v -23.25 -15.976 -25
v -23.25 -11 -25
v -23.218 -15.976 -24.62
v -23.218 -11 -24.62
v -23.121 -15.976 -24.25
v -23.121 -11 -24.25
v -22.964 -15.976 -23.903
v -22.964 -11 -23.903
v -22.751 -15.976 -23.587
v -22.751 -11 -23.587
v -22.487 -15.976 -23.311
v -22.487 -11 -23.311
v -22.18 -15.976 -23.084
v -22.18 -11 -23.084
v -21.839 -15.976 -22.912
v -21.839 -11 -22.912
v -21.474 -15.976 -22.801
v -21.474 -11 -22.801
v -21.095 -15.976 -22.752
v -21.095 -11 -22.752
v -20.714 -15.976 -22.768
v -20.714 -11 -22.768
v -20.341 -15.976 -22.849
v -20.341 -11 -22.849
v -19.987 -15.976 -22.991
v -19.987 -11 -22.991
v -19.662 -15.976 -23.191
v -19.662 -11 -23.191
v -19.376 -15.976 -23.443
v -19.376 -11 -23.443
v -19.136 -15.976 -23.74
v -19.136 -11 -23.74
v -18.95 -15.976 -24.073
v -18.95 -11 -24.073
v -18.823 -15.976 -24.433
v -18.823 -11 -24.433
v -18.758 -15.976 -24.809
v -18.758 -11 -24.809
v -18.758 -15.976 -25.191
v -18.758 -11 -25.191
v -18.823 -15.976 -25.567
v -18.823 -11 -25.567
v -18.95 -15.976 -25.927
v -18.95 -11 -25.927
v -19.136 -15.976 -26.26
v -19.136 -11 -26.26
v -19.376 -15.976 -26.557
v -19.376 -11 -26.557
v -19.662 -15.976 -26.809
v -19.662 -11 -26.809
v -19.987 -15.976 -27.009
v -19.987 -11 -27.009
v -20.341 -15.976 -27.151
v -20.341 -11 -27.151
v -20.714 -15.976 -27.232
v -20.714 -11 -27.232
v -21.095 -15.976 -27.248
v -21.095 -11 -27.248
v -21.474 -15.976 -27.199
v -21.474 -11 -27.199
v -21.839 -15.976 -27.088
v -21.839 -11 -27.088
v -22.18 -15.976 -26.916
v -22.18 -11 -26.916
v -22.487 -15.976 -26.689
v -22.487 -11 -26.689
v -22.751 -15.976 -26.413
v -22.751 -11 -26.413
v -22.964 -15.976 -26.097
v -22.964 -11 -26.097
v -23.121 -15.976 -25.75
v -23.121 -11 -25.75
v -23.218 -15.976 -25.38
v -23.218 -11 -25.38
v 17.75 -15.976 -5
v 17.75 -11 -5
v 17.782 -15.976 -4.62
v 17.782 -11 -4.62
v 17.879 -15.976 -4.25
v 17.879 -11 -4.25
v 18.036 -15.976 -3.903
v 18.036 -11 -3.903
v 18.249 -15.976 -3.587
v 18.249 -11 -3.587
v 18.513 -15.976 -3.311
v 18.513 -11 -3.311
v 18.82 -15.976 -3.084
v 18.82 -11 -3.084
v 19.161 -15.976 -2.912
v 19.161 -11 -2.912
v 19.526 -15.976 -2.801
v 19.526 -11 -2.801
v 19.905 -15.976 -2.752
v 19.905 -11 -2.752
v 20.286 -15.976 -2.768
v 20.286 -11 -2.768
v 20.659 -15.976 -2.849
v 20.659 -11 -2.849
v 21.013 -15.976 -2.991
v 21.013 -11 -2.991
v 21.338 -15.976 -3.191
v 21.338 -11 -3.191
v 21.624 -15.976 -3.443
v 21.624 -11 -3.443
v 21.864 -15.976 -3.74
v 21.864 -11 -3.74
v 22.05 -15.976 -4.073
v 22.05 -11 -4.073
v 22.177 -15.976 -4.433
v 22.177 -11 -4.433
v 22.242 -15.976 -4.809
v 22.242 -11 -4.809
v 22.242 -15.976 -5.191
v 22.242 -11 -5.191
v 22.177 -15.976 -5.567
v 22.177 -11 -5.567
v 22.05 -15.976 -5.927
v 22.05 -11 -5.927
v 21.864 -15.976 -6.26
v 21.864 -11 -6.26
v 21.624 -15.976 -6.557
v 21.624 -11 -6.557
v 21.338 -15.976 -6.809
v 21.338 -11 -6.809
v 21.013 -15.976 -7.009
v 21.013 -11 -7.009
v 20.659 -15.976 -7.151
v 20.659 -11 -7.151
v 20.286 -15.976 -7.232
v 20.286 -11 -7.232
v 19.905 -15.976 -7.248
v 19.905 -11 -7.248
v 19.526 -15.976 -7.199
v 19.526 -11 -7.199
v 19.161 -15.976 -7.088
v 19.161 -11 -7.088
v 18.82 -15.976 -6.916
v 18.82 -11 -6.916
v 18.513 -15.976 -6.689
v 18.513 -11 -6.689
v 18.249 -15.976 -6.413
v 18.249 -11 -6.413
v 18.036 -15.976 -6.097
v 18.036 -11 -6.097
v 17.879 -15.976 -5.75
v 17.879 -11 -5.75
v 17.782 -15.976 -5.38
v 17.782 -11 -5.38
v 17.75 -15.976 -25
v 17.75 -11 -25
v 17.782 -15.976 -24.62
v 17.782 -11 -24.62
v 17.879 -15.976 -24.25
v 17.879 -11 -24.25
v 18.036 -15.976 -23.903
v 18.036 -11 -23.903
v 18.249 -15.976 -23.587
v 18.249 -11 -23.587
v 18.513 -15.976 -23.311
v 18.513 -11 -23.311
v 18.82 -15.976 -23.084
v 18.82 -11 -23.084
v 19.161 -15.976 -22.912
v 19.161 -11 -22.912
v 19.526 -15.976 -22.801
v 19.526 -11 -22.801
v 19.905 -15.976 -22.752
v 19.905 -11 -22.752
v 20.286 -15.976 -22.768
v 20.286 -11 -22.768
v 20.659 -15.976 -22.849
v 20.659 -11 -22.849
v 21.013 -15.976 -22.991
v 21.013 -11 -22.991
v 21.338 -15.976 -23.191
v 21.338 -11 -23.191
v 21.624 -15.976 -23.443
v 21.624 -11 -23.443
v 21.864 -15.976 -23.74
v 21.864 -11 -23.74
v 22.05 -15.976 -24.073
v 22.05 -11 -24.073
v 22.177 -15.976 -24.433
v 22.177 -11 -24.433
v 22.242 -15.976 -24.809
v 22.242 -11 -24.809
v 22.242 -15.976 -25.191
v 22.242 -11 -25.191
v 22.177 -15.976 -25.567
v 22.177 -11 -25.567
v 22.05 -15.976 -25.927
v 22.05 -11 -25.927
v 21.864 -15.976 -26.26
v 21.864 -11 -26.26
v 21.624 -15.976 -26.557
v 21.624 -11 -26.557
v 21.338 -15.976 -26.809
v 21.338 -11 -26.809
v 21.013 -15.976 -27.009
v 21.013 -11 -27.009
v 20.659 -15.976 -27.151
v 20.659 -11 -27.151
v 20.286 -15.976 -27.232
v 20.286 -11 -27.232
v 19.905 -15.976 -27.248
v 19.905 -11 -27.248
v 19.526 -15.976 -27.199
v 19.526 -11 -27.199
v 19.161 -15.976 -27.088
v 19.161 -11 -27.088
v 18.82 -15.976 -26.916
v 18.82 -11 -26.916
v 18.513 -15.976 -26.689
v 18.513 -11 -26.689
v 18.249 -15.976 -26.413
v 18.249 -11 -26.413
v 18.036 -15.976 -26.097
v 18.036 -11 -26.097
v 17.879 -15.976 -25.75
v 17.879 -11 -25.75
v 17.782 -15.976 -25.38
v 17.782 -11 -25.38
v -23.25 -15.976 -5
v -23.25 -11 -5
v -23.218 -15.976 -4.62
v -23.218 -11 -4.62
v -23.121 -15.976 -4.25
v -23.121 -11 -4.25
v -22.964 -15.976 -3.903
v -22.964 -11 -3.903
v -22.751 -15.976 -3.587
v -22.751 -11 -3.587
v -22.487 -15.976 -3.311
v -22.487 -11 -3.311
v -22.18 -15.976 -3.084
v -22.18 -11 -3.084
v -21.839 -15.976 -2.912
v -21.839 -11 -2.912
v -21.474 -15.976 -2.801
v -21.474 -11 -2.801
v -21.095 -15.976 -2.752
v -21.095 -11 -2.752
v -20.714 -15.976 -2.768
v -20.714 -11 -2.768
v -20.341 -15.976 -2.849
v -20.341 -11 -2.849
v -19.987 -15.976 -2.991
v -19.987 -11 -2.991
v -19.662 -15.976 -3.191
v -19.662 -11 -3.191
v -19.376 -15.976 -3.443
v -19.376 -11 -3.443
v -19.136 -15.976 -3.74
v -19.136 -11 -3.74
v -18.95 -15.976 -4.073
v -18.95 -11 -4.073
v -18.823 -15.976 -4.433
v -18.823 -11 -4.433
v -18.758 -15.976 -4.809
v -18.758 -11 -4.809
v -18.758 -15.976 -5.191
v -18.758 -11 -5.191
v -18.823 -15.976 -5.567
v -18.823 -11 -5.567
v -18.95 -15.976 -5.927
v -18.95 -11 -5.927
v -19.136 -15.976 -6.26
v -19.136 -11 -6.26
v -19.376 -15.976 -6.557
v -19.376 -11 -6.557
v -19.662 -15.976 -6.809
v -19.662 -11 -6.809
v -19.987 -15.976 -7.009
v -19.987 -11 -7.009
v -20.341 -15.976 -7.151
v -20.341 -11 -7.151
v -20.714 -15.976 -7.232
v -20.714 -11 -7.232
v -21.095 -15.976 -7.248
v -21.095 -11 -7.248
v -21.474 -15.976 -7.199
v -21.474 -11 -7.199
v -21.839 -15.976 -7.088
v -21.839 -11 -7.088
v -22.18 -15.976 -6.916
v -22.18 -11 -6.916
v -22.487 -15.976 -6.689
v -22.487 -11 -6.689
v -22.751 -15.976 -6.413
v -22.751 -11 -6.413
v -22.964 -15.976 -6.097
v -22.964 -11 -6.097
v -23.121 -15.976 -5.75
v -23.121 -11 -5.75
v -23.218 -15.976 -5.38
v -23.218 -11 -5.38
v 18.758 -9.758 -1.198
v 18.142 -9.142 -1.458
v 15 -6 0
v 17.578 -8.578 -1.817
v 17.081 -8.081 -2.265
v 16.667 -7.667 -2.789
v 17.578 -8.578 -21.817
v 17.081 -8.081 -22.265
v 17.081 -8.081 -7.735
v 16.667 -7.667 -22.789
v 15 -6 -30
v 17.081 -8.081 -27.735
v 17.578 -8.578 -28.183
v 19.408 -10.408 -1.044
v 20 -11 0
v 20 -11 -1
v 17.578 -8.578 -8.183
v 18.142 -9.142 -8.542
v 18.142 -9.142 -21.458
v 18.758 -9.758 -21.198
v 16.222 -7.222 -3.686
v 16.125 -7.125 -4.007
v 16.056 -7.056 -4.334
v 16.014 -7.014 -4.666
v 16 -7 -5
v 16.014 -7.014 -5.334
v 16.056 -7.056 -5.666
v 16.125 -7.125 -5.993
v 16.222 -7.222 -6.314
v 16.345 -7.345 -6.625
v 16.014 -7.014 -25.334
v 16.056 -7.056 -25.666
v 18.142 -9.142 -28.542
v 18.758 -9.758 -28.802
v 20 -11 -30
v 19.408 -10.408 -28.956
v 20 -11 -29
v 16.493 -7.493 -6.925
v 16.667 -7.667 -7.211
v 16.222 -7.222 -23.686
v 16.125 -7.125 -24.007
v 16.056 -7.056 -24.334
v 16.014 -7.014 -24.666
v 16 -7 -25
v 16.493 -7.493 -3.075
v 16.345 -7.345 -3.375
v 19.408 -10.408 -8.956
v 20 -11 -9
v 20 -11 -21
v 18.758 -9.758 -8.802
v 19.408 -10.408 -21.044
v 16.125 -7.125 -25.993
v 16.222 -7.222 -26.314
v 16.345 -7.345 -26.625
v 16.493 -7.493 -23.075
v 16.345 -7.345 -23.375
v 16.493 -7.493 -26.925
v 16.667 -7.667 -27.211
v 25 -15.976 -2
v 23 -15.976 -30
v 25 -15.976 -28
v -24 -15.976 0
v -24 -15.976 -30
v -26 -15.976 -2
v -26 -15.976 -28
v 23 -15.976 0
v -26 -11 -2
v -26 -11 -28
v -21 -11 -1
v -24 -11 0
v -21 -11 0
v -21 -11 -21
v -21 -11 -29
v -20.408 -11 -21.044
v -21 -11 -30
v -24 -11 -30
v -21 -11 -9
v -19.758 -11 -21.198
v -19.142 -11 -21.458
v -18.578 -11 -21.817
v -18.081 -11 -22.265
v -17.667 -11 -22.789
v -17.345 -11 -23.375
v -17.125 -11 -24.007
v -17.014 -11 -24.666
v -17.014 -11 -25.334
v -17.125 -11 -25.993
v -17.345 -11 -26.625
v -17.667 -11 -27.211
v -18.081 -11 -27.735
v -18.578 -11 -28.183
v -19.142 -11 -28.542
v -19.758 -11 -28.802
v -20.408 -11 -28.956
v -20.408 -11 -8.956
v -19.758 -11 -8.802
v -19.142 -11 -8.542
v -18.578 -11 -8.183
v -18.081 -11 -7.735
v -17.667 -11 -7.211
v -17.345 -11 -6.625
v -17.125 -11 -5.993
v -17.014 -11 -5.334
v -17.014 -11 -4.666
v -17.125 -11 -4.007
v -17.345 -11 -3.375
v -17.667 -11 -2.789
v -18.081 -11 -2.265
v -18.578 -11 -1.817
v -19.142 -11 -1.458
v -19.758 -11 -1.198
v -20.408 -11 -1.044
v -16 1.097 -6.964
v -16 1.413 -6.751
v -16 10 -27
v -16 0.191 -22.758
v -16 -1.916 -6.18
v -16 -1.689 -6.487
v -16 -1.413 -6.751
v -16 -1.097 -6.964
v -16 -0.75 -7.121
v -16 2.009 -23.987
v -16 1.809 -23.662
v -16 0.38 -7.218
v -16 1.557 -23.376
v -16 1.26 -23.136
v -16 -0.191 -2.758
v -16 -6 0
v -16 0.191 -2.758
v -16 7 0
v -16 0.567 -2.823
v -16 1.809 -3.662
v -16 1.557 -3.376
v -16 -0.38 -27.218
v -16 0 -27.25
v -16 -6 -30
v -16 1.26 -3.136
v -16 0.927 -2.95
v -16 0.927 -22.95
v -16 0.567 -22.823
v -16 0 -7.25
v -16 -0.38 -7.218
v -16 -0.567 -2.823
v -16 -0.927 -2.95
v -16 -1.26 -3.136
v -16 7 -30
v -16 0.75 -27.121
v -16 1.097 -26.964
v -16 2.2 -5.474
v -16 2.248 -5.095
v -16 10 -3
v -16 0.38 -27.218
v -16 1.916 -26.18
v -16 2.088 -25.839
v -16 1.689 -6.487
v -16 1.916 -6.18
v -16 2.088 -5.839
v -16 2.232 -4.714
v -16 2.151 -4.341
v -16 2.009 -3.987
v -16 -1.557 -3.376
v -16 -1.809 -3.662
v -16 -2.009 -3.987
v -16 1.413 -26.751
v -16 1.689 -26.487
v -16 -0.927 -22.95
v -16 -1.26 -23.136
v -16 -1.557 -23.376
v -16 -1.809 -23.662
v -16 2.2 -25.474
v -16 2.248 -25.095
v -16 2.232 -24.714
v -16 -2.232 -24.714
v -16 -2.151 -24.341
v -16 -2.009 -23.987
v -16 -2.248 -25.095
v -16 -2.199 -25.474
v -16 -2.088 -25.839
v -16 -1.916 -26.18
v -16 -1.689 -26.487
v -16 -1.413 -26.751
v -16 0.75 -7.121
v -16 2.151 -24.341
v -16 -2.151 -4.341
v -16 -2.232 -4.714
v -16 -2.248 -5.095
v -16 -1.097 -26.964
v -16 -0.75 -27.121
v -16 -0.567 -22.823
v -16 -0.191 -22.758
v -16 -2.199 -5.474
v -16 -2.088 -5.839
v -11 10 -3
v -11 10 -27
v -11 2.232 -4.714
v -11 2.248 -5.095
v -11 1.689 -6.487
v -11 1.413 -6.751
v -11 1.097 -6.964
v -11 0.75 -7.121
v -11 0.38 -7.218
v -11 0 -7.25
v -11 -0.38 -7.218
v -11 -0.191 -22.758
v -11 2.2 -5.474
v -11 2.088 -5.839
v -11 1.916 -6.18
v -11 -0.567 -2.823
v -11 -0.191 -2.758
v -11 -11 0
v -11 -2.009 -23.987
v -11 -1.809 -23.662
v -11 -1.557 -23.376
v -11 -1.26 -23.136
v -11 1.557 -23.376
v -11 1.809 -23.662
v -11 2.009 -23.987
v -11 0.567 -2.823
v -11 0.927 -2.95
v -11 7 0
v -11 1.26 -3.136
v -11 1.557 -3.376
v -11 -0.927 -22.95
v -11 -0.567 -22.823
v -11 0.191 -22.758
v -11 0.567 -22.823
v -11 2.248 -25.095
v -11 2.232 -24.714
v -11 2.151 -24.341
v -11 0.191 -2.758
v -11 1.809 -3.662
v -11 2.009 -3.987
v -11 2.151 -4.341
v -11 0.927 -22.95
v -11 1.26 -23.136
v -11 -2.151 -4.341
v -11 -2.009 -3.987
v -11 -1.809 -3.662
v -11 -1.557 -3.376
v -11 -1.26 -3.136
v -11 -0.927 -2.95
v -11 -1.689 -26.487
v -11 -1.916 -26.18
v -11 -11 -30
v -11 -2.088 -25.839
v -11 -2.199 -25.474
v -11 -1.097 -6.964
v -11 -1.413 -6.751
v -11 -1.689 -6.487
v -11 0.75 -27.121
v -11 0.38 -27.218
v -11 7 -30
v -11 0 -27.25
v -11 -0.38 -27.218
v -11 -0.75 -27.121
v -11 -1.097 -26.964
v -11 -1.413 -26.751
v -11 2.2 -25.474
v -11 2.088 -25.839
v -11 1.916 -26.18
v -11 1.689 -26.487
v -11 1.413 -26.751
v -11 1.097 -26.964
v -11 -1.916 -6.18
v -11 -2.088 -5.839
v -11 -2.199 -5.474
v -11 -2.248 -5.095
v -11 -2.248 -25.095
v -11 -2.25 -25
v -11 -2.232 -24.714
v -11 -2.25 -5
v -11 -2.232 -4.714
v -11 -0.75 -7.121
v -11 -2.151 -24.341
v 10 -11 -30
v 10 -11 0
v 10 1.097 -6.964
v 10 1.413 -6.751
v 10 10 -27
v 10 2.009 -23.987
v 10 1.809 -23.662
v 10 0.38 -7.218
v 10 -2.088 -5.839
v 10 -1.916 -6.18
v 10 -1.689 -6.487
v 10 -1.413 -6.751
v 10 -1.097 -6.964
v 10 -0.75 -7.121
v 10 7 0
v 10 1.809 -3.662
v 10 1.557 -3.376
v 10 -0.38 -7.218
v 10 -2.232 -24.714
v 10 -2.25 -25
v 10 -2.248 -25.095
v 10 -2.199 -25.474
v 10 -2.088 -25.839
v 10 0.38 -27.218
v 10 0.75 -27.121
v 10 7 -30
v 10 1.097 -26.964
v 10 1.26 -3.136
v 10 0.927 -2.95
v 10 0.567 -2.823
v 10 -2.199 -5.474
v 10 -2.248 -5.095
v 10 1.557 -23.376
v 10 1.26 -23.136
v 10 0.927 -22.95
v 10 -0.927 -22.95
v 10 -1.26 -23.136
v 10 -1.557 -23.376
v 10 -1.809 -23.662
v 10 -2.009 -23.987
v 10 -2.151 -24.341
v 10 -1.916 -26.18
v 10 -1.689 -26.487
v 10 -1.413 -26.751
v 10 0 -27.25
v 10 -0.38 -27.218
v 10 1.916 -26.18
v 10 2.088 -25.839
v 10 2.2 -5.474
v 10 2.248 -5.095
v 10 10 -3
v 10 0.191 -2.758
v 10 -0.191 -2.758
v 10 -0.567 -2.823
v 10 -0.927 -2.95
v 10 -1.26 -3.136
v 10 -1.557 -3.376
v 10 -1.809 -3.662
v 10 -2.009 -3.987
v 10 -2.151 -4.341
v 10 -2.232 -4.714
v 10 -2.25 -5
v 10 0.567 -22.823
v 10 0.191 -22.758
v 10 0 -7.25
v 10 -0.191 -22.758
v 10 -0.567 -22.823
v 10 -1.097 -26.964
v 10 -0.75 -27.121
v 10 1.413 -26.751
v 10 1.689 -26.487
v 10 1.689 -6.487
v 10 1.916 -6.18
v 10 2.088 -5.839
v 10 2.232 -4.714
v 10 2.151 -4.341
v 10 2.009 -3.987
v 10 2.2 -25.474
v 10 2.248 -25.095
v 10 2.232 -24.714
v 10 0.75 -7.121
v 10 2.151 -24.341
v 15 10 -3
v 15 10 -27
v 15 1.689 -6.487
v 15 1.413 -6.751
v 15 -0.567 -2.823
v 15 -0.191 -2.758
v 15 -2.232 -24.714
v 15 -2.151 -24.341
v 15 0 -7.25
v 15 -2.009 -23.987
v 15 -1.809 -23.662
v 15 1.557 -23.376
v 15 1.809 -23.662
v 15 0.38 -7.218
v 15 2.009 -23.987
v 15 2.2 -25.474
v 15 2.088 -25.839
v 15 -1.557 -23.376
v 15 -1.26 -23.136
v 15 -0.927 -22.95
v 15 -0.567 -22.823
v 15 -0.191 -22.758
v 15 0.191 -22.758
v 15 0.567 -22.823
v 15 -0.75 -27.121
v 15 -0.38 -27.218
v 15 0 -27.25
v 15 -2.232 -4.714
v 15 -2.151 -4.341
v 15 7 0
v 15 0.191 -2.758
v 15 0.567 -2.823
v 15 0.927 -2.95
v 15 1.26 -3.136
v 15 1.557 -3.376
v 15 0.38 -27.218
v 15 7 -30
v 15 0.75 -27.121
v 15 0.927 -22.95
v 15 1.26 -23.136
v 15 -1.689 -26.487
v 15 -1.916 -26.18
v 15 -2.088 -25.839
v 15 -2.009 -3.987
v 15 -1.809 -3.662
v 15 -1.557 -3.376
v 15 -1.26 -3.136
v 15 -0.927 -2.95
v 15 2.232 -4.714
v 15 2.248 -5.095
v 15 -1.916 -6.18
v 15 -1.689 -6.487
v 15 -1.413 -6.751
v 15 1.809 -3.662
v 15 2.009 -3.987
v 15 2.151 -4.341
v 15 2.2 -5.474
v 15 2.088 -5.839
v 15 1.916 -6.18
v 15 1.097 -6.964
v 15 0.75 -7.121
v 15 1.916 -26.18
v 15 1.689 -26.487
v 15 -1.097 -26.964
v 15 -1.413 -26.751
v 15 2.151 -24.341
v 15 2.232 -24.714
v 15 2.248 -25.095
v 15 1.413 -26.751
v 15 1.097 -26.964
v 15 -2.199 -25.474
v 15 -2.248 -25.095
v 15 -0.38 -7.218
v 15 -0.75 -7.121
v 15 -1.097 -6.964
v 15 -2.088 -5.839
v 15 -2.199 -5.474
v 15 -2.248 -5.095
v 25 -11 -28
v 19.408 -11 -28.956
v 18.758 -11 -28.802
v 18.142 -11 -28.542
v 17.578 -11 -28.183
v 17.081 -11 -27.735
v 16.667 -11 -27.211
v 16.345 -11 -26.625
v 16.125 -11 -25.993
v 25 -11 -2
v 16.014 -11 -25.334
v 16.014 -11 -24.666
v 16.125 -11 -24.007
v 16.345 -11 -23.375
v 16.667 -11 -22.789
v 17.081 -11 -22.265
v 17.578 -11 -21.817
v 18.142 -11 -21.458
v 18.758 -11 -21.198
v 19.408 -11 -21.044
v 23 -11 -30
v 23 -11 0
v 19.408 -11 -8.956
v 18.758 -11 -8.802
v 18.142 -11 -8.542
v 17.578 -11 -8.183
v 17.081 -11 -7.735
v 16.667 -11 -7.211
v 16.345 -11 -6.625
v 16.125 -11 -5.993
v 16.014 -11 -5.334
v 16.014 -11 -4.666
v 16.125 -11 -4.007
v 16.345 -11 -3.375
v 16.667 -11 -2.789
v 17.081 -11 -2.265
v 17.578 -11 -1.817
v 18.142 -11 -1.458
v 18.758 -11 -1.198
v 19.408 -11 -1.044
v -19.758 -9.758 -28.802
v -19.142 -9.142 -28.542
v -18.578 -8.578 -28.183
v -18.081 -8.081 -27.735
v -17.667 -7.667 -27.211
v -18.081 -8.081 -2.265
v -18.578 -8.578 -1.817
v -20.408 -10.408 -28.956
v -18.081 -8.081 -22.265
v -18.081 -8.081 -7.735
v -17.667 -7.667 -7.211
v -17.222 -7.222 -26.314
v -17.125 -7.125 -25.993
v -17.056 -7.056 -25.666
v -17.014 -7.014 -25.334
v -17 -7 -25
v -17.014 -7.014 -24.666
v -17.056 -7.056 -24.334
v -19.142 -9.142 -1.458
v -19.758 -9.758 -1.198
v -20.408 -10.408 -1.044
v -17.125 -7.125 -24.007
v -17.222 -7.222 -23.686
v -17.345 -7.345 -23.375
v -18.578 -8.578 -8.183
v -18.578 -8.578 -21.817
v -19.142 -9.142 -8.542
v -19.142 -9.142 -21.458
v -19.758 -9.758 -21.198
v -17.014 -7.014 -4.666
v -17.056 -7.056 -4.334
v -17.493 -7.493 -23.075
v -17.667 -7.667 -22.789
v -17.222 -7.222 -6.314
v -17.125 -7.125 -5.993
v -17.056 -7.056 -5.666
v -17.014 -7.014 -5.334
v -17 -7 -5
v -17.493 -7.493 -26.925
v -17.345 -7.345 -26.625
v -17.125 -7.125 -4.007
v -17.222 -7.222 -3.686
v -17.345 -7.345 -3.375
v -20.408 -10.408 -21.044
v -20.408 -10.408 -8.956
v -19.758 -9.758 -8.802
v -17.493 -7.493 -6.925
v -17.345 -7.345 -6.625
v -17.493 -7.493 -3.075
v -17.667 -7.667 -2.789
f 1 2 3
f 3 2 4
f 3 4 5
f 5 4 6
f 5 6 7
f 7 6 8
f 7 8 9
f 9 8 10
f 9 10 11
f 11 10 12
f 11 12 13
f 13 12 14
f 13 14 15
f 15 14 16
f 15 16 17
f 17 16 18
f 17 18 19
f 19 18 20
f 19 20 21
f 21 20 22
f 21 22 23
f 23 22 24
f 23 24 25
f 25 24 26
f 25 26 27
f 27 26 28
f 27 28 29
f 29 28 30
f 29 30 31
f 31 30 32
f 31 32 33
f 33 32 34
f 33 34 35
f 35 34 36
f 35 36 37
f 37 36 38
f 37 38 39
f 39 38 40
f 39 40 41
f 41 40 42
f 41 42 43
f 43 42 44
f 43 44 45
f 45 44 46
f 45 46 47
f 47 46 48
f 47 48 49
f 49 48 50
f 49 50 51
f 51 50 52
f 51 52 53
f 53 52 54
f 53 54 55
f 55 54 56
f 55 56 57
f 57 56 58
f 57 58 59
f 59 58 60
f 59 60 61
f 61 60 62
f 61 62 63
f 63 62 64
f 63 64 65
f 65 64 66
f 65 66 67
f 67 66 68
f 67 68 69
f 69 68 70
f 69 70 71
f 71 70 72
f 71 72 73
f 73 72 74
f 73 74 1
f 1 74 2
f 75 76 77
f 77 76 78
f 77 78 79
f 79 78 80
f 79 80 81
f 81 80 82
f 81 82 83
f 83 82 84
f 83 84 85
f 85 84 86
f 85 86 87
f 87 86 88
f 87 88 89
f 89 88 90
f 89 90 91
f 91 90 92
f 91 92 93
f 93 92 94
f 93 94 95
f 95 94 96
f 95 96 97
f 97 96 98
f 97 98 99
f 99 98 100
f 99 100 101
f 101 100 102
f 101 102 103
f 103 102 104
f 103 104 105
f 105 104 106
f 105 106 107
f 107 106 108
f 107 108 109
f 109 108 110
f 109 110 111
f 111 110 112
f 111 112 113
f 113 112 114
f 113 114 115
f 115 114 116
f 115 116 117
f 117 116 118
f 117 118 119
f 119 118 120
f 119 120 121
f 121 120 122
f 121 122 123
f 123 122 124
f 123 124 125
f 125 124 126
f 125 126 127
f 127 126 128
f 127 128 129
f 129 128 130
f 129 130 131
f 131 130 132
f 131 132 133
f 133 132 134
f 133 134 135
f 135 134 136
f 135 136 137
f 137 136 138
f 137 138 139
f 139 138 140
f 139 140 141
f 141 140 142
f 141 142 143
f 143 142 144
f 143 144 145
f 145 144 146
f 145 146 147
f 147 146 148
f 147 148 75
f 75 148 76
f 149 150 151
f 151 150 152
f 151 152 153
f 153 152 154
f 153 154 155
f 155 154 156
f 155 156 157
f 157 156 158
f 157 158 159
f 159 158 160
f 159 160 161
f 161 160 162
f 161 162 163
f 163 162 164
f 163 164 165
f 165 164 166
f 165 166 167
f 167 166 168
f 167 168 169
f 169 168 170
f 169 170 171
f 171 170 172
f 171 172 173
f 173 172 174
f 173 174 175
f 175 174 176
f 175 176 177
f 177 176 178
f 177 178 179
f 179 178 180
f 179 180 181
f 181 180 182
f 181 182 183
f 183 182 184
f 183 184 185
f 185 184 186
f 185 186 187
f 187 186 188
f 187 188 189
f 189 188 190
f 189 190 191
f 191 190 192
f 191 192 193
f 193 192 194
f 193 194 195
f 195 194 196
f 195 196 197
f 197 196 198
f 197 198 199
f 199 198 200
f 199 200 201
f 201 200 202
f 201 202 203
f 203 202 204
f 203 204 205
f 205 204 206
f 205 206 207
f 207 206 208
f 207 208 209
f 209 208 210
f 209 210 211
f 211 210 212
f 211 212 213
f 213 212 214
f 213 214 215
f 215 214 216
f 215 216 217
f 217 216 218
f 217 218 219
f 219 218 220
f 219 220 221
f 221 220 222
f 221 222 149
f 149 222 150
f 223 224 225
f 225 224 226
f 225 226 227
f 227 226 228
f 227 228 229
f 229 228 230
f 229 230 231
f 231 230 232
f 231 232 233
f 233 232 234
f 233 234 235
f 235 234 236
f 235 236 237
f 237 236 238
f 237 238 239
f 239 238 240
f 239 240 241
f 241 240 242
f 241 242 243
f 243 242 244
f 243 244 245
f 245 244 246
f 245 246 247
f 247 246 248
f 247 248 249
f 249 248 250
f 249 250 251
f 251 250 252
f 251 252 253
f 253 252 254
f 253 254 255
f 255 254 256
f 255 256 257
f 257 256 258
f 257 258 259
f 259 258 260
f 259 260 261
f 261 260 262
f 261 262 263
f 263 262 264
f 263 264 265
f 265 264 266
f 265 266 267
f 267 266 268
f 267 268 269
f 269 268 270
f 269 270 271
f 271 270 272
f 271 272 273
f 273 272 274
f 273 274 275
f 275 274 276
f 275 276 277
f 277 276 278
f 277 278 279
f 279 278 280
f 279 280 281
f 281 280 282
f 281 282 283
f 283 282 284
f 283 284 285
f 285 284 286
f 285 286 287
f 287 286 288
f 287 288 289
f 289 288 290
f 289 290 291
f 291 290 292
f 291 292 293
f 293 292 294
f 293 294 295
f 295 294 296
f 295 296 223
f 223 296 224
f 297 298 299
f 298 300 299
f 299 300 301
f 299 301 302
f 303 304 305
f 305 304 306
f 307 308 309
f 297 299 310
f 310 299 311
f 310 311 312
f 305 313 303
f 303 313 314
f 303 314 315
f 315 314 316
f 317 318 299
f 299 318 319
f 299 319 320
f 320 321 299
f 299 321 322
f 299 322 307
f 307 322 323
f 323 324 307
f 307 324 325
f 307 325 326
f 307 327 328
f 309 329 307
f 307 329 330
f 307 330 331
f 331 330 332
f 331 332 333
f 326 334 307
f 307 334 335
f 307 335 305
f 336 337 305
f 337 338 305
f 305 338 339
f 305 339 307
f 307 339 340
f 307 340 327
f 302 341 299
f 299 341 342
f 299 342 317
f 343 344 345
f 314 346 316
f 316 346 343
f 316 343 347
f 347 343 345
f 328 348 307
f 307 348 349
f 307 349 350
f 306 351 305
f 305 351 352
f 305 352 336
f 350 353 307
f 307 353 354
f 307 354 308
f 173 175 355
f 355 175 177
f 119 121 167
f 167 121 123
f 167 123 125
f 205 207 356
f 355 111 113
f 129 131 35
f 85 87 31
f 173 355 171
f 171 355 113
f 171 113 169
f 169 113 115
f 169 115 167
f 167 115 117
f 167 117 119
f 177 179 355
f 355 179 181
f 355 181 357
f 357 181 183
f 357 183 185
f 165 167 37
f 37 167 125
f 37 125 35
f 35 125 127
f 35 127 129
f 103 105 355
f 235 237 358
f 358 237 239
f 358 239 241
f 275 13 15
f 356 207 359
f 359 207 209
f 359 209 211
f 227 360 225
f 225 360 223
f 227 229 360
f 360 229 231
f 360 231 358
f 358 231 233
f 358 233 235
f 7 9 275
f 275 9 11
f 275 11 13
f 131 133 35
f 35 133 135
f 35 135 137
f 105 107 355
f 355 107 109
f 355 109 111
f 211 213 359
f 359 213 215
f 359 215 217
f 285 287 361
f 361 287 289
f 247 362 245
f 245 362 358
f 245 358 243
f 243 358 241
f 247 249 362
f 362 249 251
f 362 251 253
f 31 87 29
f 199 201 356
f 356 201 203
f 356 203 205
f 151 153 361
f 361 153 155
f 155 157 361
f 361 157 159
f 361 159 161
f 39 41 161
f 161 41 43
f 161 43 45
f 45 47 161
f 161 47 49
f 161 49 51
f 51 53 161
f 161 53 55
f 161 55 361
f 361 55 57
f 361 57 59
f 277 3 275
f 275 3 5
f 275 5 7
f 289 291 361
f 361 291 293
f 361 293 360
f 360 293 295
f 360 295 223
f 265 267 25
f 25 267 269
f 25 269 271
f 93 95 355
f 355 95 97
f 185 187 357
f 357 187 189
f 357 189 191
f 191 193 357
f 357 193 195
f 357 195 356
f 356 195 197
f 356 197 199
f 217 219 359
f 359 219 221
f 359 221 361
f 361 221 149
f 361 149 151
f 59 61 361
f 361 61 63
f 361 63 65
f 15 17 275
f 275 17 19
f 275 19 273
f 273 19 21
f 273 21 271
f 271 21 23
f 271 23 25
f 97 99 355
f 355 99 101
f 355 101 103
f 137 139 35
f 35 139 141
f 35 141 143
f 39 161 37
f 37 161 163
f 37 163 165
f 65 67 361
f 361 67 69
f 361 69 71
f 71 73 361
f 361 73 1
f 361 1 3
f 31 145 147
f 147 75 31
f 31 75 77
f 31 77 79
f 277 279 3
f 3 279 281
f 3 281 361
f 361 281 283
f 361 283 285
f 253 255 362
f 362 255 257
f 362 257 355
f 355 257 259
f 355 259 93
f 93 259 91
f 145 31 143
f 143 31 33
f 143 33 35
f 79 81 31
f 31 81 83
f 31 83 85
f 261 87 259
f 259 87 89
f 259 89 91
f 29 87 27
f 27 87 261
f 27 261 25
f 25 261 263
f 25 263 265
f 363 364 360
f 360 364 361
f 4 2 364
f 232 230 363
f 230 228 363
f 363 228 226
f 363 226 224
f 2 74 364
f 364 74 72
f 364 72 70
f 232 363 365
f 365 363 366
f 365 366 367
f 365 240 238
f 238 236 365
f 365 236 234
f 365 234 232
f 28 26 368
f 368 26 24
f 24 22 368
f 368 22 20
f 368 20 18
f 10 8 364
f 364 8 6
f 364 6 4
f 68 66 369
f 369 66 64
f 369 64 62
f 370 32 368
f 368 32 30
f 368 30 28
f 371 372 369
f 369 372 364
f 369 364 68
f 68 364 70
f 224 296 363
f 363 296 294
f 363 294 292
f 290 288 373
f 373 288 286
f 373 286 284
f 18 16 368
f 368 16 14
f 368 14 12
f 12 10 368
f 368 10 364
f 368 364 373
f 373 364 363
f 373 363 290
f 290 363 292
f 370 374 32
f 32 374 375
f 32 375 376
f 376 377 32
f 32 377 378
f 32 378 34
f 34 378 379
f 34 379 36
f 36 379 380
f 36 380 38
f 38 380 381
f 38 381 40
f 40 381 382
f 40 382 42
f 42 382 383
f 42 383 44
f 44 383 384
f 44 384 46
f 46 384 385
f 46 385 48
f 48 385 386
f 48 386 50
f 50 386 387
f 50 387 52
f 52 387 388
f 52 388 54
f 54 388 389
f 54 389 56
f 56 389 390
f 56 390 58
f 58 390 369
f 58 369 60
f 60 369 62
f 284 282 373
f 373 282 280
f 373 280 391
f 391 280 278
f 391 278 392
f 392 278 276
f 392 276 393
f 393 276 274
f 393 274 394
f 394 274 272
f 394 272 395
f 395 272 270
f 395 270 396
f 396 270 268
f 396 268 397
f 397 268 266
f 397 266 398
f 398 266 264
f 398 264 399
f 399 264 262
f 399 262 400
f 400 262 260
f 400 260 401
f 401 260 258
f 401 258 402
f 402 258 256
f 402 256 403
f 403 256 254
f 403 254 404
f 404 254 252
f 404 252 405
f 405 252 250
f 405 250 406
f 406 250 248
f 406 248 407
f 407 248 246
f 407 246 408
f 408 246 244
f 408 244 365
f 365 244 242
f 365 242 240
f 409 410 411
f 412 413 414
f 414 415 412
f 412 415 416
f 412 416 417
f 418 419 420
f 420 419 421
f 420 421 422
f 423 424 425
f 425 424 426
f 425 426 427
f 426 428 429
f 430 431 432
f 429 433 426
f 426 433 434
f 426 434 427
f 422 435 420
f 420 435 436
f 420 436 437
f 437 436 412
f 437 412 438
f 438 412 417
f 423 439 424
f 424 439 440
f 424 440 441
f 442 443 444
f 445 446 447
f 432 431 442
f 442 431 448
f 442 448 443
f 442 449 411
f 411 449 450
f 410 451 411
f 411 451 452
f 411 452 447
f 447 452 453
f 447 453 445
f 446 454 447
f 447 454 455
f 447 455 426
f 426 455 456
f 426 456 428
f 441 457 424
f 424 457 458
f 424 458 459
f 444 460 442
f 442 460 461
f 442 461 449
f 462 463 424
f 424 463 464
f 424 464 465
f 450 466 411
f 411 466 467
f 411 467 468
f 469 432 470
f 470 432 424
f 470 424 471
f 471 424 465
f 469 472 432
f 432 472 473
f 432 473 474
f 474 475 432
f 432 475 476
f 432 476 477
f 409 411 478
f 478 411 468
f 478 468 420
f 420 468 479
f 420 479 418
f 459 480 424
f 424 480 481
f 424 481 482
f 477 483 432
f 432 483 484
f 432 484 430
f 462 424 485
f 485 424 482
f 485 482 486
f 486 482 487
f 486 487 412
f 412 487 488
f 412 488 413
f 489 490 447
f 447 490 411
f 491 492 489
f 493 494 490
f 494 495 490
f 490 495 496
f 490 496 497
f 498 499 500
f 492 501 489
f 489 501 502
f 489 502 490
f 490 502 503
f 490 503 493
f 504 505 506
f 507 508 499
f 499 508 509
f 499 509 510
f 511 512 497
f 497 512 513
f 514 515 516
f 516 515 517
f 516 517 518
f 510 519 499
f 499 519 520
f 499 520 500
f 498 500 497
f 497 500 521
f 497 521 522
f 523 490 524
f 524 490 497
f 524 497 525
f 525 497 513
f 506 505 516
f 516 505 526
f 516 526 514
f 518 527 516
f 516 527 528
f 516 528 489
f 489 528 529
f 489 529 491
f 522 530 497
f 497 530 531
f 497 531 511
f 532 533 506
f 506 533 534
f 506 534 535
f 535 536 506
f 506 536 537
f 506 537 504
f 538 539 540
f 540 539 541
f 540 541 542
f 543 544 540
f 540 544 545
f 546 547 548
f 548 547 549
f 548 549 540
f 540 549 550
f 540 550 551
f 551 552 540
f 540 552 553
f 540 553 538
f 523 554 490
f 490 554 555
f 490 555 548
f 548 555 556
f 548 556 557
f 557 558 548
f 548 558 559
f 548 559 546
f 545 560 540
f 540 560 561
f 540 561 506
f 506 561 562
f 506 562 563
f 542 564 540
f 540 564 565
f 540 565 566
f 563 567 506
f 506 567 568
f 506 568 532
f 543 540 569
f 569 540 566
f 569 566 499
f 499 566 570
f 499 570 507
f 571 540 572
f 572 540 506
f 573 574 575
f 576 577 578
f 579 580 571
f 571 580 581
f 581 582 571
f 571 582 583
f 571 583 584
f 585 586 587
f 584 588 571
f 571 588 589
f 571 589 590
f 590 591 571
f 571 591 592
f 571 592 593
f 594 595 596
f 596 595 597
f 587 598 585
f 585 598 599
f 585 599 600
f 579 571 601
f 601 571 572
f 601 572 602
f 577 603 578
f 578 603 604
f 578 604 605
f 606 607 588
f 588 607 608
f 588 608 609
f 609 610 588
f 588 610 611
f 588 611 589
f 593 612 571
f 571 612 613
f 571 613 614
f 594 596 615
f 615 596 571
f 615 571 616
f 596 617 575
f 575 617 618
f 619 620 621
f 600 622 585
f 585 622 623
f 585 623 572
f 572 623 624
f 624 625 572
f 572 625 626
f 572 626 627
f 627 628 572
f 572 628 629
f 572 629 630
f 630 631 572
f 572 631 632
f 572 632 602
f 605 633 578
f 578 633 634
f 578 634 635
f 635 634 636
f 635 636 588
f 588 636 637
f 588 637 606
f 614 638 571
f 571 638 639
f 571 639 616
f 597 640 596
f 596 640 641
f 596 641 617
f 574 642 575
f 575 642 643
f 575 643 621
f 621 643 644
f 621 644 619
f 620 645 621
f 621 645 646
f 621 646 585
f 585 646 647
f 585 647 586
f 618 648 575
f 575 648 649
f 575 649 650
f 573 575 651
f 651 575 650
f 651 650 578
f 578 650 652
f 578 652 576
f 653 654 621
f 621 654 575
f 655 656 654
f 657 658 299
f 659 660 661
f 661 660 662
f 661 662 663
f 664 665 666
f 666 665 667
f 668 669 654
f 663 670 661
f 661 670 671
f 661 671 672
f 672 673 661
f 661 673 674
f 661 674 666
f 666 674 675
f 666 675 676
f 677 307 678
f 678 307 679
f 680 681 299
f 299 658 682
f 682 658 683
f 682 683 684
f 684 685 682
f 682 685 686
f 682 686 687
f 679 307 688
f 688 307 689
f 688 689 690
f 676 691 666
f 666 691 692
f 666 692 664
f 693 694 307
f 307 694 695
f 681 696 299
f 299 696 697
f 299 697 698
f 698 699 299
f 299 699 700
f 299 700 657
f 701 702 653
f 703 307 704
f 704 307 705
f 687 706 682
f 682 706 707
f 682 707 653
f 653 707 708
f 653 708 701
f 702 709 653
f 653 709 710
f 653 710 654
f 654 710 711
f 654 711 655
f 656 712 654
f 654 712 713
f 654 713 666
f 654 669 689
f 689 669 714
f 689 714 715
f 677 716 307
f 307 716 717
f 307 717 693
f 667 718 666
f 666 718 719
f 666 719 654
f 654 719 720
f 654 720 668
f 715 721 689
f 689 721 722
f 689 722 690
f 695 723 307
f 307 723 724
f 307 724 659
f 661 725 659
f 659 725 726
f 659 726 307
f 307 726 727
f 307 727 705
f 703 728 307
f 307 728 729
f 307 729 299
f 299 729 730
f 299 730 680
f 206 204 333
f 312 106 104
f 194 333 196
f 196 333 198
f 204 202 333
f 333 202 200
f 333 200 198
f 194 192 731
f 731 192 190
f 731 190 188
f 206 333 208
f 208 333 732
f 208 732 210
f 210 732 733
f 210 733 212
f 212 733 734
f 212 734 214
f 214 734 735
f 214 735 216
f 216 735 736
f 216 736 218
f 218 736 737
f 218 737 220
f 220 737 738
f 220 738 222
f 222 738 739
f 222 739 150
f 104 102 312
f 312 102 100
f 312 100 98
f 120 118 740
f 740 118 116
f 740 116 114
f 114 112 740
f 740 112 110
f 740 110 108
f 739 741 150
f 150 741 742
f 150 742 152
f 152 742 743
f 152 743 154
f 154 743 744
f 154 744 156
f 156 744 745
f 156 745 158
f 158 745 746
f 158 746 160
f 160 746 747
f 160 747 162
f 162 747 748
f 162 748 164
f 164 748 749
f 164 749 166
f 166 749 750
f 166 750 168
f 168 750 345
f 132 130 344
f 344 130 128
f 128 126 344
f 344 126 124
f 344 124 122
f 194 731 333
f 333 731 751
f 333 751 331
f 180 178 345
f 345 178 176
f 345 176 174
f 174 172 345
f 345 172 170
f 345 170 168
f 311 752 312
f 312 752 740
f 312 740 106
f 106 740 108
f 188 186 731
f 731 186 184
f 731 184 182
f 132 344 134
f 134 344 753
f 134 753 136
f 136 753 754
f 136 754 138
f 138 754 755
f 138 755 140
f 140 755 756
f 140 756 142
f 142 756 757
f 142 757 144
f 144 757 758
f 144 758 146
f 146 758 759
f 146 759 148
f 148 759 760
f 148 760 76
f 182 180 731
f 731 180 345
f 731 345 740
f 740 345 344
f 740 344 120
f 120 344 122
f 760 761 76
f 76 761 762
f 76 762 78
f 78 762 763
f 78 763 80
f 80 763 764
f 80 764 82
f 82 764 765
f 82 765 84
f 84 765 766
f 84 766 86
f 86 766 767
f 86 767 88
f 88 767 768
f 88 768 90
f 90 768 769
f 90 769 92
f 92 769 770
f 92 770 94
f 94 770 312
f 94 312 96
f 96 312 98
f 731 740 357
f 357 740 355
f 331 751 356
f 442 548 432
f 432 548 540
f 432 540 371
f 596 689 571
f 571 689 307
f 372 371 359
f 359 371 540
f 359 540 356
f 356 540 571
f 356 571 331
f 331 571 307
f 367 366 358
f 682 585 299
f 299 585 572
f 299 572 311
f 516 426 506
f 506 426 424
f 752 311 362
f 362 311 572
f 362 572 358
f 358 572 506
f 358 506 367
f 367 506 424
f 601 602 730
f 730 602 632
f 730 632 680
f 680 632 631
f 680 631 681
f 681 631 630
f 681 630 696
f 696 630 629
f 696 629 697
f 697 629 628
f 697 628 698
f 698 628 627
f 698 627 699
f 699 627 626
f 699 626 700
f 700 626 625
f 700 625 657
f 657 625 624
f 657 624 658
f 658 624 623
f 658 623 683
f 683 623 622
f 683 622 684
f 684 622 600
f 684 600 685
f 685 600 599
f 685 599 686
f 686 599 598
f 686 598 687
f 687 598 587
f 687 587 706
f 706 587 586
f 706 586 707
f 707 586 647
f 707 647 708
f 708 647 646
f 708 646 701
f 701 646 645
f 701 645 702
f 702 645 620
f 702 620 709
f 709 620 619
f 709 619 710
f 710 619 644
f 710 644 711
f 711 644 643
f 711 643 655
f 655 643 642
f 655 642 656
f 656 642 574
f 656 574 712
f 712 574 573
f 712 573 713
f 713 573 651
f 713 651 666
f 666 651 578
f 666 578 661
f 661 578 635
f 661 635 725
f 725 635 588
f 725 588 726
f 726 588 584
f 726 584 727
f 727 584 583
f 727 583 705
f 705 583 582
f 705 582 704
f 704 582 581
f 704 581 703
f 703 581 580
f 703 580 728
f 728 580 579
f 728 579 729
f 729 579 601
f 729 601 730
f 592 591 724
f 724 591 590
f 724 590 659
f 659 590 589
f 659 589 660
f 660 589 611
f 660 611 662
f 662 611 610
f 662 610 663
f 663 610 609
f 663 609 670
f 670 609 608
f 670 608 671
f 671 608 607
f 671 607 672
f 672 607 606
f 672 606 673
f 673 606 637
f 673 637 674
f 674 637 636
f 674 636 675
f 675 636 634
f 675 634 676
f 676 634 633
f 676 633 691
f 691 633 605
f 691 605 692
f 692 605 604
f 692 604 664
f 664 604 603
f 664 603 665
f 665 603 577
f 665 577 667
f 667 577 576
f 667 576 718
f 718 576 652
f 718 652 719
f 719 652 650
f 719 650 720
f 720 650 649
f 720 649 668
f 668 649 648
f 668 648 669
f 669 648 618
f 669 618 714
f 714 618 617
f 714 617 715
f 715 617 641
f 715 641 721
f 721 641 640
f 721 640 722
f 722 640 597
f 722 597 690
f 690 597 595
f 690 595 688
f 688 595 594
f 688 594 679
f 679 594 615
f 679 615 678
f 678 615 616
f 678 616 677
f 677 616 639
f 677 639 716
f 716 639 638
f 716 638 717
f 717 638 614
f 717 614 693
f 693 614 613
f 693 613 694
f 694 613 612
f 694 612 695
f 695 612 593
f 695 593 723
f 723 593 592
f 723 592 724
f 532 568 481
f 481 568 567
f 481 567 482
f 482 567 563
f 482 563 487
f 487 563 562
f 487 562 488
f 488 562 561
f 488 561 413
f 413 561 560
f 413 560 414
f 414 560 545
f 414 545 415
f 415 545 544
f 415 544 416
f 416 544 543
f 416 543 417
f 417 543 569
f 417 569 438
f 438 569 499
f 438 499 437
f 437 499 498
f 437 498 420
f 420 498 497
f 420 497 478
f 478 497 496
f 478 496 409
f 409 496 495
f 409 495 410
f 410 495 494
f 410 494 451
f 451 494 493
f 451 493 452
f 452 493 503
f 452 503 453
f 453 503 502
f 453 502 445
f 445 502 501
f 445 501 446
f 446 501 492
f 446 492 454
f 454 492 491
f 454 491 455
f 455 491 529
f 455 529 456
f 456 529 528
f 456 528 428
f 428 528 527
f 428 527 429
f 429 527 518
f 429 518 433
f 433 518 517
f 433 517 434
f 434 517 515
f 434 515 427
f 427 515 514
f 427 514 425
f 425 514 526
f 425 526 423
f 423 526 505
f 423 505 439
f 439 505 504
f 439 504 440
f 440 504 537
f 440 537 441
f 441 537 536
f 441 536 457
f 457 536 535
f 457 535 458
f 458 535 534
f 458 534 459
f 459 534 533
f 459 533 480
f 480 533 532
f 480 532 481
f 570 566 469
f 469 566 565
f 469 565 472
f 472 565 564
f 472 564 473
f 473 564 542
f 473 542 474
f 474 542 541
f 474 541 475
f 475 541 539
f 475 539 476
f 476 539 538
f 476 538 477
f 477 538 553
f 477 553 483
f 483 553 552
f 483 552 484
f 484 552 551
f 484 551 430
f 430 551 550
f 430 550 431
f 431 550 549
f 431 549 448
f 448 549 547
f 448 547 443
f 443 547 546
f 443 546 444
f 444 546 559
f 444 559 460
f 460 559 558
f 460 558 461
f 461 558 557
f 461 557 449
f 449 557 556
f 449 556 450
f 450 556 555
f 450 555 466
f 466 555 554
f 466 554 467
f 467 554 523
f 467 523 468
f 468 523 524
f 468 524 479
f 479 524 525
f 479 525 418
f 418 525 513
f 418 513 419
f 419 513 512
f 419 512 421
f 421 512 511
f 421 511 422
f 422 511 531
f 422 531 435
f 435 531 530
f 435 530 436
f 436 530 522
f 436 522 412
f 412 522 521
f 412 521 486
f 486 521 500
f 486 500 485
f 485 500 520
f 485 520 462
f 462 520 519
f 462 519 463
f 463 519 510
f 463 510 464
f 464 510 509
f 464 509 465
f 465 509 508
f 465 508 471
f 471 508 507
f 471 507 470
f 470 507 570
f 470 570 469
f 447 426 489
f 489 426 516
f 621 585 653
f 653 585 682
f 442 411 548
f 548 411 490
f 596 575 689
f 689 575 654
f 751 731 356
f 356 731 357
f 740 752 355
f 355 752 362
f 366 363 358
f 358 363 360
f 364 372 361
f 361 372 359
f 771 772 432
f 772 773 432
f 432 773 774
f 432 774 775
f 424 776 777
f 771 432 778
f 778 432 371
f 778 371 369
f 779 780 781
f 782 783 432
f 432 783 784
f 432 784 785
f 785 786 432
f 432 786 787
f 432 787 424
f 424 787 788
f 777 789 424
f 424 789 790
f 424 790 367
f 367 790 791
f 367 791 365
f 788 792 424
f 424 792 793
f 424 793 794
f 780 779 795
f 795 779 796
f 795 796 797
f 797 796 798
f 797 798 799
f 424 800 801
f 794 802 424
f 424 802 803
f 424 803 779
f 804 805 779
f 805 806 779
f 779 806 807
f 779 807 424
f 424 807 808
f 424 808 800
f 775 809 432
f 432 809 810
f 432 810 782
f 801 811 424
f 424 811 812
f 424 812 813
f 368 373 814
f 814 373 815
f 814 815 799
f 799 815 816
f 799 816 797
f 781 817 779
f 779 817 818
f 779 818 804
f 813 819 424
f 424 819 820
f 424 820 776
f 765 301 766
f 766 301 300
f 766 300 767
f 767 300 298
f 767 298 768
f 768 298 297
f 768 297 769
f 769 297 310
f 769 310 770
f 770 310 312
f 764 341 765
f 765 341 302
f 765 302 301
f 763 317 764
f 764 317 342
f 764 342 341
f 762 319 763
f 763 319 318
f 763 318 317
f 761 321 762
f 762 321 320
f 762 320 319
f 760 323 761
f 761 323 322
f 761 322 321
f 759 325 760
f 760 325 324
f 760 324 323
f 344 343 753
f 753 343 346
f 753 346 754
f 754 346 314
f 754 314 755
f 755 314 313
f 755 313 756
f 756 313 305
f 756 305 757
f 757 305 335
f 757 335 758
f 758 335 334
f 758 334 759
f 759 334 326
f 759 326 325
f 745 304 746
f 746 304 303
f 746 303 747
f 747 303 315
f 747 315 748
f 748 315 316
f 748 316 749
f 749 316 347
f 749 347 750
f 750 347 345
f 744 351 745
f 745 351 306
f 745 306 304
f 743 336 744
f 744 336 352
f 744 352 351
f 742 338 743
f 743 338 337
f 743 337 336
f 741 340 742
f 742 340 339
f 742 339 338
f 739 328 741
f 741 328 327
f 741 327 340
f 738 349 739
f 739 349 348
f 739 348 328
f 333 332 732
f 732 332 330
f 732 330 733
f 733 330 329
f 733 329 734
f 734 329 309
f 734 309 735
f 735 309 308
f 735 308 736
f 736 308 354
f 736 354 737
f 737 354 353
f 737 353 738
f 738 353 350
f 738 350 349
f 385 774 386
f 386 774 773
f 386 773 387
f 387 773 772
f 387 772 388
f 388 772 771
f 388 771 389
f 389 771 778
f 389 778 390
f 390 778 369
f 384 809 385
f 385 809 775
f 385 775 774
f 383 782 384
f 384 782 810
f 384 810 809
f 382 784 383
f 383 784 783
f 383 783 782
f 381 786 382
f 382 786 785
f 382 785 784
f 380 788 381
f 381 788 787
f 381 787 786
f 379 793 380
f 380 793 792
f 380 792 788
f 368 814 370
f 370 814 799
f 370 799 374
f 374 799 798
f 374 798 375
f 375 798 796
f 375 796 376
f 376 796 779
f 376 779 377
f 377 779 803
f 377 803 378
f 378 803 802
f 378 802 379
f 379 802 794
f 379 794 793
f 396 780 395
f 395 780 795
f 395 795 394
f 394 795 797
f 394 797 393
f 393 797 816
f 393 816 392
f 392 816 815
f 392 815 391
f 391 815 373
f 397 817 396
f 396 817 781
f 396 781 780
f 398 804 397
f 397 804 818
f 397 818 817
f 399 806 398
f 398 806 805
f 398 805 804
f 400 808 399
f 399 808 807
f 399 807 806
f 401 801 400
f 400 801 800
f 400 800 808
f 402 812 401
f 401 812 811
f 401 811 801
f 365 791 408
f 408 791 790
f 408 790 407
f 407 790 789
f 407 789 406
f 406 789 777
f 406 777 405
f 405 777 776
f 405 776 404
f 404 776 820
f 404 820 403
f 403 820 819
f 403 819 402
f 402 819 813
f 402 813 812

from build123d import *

# Parameters (mm, degrees)
BOSS_EXTRUDE1_DEPTH = 30
SKETCH15_R          = 2.25
CUT_EXTRUDE1_DEPTH  = 31
SKETCH14_R          = 2.25
CUT_EXTRUDE2_DEPTH  = 5
CHAMFER2_SIZE       = 3
CHAMFER3_SIZE       = 2
CHAMFER4_SIZE       = 5
SKETCH14_7_R        = 4
CUT_EXTRUDE3_DEPTH  = 10


with BuildPart() as part:
    # Sketch13 → Boss-Extrude1 (new body)
    with BuildSketch(Plane.XY):
        Polygon((-26, -15.975764912), (-26, -11), (-16, -11), (-16, 10), (-11, 10), (-11, -11), (10, -11), (10, 10), (15, 10), (15, -11), (25, -11), (25, -15.975764912), align=None)
    extrude(amount=-BOSS_EXTRUDE1_DEPTH)

    # Sketch15 → Cut-Extrude1 (cut)
    with BuildSketch(Plane(origin=(15, 0, 0), x_dir=(0, 0, -1), z_dir=(1, 0, 0))):
        with Locations((5, 0)):
            Circle(SKETCH15_R)
        with Locations((25, 0)):
            Circle(SKETCH15_R)
    extrude(amount=-CUT_EXTRUDE1_DEPTH, mode=Mode.SUBTRACT)

    # Sketch14 → Cut-Extrude2 (cut)
    with BuildSketch(Plane(origin=(0, -11, 0), x_dir=(1, 0, 0), z_dir=(0, 1, 0))):
        with Locations(Location((20, 25, 0), (0, 0, 180))):
            Circle(SKETCH14_R)
        with Locations(Location((20, 5, 0), (0, 0, 180))):
            Circle(SKETCH14_R)
        with Locations(Location((-21, 5, 0), (0, 0, 180))):
            Circle(SKETCH14_R)
        with Locations(Location((-21, 25, 0), (0, 0, 180))):
            Circle(SKETCH14_R)
    extrude(amount=-CUT_EXTRUDE2_DEPTH, mode=Mode.SUBTRACT)

    # Chamfer2
    chamfer2_edges = [part.edges().sort_by_distance(p)[0] for p in [
        (-13.5, 10, 0),
        (12.5, 10, 0),
        (12.5, 10, -30),
        (-13.5, 10, -30),
    ]]
    chamfer(chamfer2_edges, length=CHAMFER2_SIZE)

    # Chamfer3
    chamfer3_edges = [part.edges().sort_by_distance(p)[0] for p in [
        (25, -13.487882456, -30),
        (25, -13.487882456, 0),
        (-26, -13.487882456, 0),
        (-26, -13.487882456, -30),
    ]]
    chamfer(chamfer3_edges, length=CHAMFER3_SIZE)

    # Chamfer4
    # the kernel refuses this chamfer: 5 mm, written as the material it adds along each edge
    with BuildSketch(Plane(origin=(-16, -11, 0), x_dir=(-0.9996219169112968, -0.027495876610586317, 0), z_dir=(0, 0, -1))) as chamfer4_piece_1_section:
        Polygon((CHAMFER4_SIZE * 0.999621916911, CHAMFER4_SIZE * 0.0274958766106), (-CHAMFER4_SIZE * 0.0274958766106, CHAMFER4_SIZE * 0.999621916911), (0, 0), align=None)
    chamfer4_piece_1 = extrude(amount=30, mode=Mode.PRIVATE)
    chamfer4_piece_1 = chamfer4_piece_1 - Plane(origin=(-21, -9.300389261, -25), x_dir=(-1, 0, 0), z_dir=(0, 1, 0)) * Cylinder(2.25, 80, mode=Mode.PRIVATE)
    chamfer4_piece_1 = chamfer4_piece_1 - Plane(origin=(-21, -9.300389261, -5), x_dir=(-1, 0, 0), z_dir=(0, 1, 0)) * Cylinder(2.25, 80, mode=Mode.PRIVATE)
    add(chamfer4_piece_1)
    with BuildSketch(Plane(origin=(15, -11, 0), x_dir=(0.9996219169112968, -0.027495876610586337, 0), z_dir=(0, 0, -1))) as chamfer4_piece_2_section:
        Polygon((CHAMFER4_SIZE * 0.999621916911, -CHAMFER4_SIZE * 0.0274958766106), (-CHAMFER4_SIZE * 0.0274958766106, -CHAMFER4_SIZE * 0.999621916911), (0, 0), align=None)
    chamfer4_piece_2 = extrude(amount=30, mode=Mode.PRIVATE)
    chamfer4_piece_2 = chamfer4_piece_2 - Plane(origin=(20, -9.300389689, -25), x_dir=(-1, 0, 0), z_dir=(0, 1, 0)) * Cylinder(2.25, 80, mode=Mode.PRIVATE)
    chamfer4_piece_2 = chamfer4_piece_2 - Plane(origin=(20, -9.300389689, -5), x_dir=(-1, 0, 0), z_dir=(0, 1, 0)) * Cylinder(2.25, 80, mode=Mode.PRIVATE)
    add(chamfer4_piece_2)

    # Sketch14<7> → Cut-Extrude3 (cut)
    with BuildSketch(Plane(origin=(0, -11, 0), x_dir=(1, 0, 0), z_dir=(0, 1, 0))):
        with Locations((20, 25)):
            Circle(SKETCH14_7_R)
        with Locations((20, 5)):
            Circle(SKETCH14_7_R)
        with Locations((-21, 5)):
            Circle(SKETCH14_7_R)
        with Locations((-21, 25)):
            Circle(SKETCH14_7_R)
    extrude(amount=CUT_EXTRUDE3_DEPTH, mode=Mode.SUBTRACT)


solid = part.part
